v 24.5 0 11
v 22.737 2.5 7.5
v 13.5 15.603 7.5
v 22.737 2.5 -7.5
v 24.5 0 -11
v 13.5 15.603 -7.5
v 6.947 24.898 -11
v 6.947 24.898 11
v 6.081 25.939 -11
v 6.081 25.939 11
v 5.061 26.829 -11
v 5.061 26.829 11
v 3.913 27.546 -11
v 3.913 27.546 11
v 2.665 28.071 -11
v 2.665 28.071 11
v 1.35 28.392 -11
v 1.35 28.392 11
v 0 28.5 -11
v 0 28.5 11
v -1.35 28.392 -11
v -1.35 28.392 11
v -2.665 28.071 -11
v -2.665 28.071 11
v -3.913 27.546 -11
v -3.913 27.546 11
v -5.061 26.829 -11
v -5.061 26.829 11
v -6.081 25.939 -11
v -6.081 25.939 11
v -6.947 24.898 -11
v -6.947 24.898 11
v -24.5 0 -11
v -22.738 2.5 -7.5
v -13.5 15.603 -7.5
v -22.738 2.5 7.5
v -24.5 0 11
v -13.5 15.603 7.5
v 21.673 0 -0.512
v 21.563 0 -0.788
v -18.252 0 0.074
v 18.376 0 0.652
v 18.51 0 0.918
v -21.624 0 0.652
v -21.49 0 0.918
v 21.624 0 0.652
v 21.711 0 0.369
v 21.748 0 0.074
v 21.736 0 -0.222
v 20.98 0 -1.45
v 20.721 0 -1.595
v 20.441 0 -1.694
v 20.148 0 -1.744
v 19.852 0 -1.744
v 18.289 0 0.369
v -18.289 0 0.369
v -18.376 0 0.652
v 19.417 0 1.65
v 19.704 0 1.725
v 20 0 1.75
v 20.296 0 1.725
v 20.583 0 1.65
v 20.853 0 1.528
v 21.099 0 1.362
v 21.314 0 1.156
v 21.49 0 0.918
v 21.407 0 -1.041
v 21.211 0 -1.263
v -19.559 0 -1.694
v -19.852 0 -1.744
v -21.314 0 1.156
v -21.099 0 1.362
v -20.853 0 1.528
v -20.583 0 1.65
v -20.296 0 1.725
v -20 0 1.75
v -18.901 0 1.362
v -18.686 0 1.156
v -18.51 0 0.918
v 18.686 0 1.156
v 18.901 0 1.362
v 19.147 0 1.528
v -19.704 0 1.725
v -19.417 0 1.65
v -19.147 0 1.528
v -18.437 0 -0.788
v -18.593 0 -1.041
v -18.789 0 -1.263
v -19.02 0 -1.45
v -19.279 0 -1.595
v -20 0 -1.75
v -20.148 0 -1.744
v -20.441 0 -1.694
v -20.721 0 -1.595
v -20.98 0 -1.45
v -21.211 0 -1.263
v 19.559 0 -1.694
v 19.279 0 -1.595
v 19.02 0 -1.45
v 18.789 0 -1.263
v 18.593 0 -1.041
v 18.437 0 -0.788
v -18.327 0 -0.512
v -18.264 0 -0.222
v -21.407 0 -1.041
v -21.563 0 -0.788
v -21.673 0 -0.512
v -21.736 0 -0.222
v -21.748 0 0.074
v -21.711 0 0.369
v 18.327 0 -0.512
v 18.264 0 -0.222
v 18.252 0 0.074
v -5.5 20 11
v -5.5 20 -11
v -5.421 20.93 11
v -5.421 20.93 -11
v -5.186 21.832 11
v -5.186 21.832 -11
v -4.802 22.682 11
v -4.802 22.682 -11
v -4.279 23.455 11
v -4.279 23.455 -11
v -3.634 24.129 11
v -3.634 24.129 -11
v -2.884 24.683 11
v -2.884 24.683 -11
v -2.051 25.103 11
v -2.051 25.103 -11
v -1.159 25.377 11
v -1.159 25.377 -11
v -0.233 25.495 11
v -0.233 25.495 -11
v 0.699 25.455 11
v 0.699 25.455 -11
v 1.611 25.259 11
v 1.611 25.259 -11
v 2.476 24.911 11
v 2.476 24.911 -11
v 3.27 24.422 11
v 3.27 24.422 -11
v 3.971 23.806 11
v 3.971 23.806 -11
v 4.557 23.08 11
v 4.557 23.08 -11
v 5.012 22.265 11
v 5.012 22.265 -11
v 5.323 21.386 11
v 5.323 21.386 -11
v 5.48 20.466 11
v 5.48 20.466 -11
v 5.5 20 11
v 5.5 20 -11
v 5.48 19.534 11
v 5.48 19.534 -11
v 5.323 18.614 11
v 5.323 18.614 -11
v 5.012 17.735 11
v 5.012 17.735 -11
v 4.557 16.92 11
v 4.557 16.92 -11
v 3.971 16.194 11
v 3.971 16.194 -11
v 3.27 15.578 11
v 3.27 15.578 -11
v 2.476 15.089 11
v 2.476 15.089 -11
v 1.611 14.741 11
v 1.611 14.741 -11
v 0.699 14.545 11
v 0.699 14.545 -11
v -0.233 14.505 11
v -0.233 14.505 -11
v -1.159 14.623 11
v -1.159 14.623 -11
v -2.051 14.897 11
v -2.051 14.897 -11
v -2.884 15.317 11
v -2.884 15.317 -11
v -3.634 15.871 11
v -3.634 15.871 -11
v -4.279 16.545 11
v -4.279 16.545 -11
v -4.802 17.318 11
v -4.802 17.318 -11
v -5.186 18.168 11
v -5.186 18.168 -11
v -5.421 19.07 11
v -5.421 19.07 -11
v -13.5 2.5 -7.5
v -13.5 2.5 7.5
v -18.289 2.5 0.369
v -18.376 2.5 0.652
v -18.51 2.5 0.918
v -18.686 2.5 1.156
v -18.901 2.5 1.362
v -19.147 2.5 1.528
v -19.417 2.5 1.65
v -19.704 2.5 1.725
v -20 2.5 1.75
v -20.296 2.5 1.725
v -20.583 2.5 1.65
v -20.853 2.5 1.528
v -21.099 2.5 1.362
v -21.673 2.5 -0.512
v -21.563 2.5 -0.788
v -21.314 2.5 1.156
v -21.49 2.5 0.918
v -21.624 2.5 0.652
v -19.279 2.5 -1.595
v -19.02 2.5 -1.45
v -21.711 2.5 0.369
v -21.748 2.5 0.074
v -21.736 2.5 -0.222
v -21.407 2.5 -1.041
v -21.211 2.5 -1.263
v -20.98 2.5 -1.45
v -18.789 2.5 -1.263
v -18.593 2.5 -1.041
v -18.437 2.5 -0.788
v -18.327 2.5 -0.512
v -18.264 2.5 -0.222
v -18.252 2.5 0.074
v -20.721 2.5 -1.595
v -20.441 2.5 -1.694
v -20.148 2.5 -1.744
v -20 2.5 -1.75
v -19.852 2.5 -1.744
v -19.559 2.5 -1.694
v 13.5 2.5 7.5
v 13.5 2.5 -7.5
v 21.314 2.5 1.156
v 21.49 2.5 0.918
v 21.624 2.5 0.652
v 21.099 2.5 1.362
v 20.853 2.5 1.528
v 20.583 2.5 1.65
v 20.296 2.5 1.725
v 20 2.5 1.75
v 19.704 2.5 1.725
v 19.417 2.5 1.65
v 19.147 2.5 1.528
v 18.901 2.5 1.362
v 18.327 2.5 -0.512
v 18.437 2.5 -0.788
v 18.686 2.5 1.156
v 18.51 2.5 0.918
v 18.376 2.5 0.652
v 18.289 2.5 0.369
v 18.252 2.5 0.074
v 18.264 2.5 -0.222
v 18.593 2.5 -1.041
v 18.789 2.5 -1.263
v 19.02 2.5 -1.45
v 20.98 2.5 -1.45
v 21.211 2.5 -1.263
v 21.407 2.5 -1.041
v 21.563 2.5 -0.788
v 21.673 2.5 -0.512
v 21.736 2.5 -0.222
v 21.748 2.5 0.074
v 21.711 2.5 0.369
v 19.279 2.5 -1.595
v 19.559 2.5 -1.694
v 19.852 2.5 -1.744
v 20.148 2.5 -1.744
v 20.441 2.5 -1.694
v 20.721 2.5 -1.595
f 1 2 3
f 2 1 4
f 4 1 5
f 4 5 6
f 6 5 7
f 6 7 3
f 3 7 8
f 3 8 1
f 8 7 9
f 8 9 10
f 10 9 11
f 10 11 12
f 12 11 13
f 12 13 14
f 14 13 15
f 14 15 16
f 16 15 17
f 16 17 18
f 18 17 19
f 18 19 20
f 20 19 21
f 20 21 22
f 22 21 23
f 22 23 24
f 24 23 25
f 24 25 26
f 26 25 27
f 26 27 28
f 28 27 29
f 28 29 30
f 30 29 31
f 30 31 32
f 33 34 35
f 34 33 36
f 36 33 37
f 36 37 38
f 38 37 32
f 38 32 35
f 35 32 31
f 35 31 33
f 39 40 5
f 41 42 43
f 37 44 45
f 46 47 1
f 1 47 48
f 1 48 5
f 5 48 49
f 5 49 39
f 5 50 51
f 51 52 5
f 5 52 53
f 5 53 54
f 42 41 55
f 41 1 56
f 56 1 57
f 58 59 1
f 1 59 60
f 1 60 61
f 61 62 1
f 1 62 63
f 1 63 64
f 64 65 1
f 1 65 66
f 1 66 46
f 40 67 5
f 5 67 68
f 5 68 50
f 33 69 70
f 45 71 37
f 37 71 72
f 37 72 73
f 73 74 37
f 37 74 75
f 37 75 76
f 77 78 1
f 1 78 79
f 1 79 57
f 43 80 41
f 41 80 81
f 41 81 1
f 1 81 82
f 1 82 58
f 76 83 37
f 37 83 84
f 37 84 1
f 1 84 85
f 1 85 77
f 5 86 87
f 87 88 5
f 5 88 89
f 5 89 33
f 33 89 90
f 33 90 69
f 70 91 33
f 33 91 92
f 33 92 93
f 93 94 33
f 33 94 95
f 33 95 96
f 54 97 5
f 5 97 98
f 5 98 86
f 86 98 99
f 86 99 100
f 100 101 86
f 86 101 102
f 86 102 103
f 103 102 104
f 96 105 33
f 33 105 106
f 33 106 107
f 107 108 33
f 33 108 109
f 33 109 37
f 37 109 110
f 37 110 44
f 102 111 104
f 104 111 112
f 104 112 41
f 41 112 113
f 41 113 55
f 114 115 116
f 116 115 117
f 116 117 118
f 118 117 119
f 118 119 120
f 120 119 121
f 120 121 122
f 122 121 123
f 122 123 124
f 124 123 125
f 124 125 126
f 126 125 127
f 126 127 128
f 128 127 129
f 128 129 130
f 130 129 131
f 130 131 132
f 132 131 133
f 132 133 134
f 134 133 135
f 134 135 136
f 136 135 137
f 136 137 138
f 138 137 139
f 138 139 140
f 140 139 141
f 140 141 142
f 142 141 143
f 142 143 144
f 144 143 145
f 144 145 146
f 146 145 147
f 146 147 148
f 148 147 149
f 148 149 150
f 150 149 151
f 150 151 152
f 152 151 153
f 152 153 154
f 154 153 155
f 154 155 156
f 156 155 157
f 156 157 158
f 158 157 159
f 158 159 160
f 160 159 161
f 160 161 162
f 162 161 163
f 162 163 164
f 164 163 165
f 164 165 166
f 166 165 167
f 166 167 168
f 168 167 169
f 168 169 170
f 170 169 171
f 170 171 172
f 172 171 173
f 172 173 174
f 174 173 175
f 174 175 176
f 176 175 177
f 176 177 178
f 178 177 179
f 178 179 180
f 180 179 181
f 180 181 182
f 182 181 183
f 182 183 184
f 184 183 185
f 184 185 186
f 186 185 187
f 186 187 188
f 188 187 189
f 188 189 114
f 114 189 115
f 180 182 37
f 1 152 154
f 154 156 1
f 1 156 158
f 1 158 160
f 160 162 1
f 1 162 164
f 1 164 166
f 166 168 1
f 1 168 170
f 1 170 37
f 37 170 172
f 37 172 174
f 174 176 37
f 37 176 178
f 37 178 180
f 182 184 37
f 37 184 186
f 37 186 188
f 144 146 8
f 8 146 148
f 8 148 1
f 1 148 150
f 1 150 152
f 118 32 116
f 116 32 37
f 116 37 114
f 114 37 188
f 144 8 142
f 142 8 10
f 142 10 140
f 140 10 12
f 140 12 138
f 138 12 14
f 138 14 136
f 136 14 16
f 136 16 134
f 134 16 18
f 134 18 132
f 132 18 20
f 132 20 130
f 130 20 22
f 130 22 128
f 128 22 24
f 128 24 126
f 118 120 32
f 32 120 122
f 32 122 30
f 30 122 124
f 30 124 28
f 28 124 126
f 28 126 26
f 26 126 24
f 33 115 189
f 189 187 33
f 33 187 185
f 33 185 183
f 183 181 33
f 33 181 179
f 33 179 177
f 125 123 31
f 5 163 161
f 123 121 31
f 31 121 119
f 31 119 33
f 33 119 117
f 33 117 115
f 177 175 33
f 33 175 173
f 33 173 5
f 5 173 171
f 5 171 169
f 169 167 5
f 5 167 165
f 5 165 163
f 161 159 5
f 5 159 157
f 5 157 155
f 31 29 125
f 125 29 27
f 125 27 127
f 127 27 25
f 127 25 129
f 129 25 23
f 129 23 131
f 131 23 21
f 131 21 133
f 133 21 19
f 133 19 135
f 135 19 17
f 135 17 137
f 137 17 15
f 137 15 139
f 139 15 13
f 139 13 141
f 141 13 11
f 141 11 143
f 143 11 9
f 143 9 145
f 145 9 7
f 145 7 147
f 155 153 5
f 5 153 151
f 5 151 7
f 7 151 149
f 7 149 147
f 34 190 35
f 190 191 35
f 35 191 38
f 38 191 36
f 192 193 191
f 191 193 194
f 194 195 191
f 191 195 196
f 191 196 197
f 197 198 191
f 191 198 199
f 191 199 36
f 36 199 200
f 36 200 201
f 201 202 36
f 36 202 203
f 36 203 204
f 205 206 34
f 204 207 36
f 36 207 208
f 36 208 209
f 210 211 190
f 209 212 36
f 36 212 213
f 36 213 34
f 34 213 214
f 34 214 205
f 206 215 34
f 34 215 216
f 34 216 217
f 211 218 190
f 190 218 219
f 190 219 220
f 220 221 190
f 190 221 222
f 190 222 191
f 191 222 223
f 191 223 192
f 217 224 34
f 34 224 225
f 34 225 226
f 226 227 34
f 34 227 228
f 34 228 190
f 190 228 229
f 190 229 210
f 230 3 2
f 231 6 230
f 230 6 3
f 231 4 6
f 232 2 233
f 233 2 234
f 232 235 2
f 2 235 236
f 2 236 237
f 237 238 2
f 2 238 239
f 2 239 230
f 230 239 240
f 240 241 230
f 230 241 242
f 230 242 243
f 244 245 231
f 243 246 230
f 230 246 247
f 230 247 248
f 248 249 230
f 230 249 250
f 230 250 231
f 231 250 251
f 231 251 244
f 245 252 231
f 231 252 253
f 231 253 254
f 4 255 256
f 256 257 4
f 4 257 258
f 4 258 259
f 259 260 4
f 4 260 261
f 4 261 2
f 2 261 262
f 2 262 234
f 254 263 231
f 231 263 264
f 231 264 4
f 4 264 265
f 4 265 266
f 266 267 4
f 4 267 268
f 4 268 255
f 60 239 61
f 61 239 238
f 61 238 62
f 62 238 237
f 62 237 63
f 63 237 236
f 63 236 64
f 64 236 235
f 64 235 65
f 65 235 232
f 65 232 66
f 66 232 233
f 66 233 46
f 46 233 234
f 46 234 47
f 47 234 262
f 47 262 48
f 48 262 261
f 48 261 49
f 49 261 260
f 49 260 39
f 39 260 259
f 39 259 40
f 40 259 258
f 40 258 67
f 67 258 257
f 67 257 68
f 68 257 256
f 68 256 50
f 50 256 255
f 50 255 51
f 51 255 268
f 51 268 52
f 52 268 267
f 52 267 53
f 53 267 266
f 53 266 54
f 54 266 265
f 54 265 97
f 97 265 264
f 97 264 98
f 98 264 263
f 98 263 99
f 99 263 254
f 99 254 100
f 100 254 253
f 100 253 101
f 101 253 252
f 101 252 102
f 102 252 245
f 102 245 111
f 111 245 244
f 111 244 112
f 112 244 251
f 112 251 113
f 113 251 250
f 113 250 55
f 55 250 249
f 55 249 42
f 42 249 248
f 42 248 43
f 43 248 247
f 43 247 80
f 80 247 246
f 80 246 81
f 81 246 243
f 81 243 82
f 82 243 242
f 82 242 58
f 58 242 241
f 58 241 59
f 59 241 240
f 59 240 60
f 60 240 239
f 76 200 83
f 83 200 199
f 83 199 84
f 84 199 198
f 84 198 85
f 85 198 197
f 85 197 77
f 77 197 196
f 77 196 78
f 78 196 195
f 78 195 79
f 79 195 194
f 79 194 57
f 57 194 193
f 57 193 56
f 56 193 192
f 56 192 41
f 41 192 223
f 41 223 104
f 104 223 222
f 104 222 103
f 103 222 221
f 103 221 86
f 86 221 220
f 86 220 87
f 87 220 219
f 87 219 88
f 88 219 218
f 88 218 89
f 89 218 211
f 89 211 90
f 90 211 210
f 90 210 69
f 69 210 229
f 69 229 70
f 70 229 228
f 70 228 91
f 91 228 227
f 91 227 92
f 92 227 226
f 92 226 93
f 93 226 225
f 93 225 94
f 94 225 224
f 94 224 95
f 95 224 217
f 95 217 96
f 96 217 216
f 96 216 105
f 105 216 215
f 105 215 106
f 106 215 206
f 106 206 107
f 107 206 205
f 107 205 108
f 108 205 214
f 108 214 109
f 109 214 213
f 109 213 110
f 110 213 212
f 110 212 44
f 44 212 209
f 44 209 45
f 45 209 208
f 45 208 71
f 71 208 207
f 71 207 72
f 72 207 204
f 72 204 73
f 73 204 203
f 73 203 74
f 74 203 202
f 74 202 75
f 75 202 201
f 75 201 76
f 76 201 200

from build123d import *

# Parameters (mm, degrees)
SKETCH1_R               = 5.5
BLOCO_DEPTH             = 11
SKETCH2_W               = 11
SKETCH2_H               = 15
RASGOS_LATERAIS_DEPTH   = 26
SKETCH3_R               = 1.75
FUROS_DE_FIXA_O_4_DEPTH = 38.379807383


with BuildPart() as part:
    # Sketch1 → Bloco (new, symmetric)
    with BuildSketch(Plane.XY):
        with BuildLine():
            Line((-6.947113934, 24.897714569), (-24.5, 0))
            Line((-24.5, 0), (24.5, 0))
            Line((24.5, 0), (6.947113934, 24.897714569))
            ThreePointArc((6.947113934, 24.897714569), (0, 28.5), (-6.947113934, 24.897714569))
        make_face()
        with Locations((0, 20)):
            Circle(SKETCH1_R, mode=Mode.SUBTRACT)
    extrude(amount=BLOCO_DEPTH, both=True)

    # Sketch2 → Rasgos Laterais (cut)
    with BuildSketch(Plane(origin=(0, 28.5, 0), x_dir=(1, 0, 0), z_dir=(0, 1, 0))):
        with Locations((19, 0)):
            Rectangle(SKETCH2_W, SKETCH2_H)
        with Locations((-19, 0)):
            Rectangle(SKETCH2_W, SKETCH2_H)
    extrude(amount=-RASGOS_LATERAIS_DEPTH, mode=Mode.SUBTRACT)

    # Sketch3 → Furos de Fixação Ø4 (cut, through all)
    with BuildSketch(Plane(origin=(0, 2.5, 0), x_dir=(1, 0, 0), z_dir=(0, 1, 0))):
        with Locations(Location((20, 0, 0), (0, 0, 270))):
            Circle(SKETCH3_R)
        with Locations(Location((-20, 0, 0), (0, 0, 90))):
            Circle(SKETCH3_R)
    extrude(amount=-FUROS_DE_FIXA_O_4_DEPTH, mode=Mode.SUBTRACT)


solid = part.part
